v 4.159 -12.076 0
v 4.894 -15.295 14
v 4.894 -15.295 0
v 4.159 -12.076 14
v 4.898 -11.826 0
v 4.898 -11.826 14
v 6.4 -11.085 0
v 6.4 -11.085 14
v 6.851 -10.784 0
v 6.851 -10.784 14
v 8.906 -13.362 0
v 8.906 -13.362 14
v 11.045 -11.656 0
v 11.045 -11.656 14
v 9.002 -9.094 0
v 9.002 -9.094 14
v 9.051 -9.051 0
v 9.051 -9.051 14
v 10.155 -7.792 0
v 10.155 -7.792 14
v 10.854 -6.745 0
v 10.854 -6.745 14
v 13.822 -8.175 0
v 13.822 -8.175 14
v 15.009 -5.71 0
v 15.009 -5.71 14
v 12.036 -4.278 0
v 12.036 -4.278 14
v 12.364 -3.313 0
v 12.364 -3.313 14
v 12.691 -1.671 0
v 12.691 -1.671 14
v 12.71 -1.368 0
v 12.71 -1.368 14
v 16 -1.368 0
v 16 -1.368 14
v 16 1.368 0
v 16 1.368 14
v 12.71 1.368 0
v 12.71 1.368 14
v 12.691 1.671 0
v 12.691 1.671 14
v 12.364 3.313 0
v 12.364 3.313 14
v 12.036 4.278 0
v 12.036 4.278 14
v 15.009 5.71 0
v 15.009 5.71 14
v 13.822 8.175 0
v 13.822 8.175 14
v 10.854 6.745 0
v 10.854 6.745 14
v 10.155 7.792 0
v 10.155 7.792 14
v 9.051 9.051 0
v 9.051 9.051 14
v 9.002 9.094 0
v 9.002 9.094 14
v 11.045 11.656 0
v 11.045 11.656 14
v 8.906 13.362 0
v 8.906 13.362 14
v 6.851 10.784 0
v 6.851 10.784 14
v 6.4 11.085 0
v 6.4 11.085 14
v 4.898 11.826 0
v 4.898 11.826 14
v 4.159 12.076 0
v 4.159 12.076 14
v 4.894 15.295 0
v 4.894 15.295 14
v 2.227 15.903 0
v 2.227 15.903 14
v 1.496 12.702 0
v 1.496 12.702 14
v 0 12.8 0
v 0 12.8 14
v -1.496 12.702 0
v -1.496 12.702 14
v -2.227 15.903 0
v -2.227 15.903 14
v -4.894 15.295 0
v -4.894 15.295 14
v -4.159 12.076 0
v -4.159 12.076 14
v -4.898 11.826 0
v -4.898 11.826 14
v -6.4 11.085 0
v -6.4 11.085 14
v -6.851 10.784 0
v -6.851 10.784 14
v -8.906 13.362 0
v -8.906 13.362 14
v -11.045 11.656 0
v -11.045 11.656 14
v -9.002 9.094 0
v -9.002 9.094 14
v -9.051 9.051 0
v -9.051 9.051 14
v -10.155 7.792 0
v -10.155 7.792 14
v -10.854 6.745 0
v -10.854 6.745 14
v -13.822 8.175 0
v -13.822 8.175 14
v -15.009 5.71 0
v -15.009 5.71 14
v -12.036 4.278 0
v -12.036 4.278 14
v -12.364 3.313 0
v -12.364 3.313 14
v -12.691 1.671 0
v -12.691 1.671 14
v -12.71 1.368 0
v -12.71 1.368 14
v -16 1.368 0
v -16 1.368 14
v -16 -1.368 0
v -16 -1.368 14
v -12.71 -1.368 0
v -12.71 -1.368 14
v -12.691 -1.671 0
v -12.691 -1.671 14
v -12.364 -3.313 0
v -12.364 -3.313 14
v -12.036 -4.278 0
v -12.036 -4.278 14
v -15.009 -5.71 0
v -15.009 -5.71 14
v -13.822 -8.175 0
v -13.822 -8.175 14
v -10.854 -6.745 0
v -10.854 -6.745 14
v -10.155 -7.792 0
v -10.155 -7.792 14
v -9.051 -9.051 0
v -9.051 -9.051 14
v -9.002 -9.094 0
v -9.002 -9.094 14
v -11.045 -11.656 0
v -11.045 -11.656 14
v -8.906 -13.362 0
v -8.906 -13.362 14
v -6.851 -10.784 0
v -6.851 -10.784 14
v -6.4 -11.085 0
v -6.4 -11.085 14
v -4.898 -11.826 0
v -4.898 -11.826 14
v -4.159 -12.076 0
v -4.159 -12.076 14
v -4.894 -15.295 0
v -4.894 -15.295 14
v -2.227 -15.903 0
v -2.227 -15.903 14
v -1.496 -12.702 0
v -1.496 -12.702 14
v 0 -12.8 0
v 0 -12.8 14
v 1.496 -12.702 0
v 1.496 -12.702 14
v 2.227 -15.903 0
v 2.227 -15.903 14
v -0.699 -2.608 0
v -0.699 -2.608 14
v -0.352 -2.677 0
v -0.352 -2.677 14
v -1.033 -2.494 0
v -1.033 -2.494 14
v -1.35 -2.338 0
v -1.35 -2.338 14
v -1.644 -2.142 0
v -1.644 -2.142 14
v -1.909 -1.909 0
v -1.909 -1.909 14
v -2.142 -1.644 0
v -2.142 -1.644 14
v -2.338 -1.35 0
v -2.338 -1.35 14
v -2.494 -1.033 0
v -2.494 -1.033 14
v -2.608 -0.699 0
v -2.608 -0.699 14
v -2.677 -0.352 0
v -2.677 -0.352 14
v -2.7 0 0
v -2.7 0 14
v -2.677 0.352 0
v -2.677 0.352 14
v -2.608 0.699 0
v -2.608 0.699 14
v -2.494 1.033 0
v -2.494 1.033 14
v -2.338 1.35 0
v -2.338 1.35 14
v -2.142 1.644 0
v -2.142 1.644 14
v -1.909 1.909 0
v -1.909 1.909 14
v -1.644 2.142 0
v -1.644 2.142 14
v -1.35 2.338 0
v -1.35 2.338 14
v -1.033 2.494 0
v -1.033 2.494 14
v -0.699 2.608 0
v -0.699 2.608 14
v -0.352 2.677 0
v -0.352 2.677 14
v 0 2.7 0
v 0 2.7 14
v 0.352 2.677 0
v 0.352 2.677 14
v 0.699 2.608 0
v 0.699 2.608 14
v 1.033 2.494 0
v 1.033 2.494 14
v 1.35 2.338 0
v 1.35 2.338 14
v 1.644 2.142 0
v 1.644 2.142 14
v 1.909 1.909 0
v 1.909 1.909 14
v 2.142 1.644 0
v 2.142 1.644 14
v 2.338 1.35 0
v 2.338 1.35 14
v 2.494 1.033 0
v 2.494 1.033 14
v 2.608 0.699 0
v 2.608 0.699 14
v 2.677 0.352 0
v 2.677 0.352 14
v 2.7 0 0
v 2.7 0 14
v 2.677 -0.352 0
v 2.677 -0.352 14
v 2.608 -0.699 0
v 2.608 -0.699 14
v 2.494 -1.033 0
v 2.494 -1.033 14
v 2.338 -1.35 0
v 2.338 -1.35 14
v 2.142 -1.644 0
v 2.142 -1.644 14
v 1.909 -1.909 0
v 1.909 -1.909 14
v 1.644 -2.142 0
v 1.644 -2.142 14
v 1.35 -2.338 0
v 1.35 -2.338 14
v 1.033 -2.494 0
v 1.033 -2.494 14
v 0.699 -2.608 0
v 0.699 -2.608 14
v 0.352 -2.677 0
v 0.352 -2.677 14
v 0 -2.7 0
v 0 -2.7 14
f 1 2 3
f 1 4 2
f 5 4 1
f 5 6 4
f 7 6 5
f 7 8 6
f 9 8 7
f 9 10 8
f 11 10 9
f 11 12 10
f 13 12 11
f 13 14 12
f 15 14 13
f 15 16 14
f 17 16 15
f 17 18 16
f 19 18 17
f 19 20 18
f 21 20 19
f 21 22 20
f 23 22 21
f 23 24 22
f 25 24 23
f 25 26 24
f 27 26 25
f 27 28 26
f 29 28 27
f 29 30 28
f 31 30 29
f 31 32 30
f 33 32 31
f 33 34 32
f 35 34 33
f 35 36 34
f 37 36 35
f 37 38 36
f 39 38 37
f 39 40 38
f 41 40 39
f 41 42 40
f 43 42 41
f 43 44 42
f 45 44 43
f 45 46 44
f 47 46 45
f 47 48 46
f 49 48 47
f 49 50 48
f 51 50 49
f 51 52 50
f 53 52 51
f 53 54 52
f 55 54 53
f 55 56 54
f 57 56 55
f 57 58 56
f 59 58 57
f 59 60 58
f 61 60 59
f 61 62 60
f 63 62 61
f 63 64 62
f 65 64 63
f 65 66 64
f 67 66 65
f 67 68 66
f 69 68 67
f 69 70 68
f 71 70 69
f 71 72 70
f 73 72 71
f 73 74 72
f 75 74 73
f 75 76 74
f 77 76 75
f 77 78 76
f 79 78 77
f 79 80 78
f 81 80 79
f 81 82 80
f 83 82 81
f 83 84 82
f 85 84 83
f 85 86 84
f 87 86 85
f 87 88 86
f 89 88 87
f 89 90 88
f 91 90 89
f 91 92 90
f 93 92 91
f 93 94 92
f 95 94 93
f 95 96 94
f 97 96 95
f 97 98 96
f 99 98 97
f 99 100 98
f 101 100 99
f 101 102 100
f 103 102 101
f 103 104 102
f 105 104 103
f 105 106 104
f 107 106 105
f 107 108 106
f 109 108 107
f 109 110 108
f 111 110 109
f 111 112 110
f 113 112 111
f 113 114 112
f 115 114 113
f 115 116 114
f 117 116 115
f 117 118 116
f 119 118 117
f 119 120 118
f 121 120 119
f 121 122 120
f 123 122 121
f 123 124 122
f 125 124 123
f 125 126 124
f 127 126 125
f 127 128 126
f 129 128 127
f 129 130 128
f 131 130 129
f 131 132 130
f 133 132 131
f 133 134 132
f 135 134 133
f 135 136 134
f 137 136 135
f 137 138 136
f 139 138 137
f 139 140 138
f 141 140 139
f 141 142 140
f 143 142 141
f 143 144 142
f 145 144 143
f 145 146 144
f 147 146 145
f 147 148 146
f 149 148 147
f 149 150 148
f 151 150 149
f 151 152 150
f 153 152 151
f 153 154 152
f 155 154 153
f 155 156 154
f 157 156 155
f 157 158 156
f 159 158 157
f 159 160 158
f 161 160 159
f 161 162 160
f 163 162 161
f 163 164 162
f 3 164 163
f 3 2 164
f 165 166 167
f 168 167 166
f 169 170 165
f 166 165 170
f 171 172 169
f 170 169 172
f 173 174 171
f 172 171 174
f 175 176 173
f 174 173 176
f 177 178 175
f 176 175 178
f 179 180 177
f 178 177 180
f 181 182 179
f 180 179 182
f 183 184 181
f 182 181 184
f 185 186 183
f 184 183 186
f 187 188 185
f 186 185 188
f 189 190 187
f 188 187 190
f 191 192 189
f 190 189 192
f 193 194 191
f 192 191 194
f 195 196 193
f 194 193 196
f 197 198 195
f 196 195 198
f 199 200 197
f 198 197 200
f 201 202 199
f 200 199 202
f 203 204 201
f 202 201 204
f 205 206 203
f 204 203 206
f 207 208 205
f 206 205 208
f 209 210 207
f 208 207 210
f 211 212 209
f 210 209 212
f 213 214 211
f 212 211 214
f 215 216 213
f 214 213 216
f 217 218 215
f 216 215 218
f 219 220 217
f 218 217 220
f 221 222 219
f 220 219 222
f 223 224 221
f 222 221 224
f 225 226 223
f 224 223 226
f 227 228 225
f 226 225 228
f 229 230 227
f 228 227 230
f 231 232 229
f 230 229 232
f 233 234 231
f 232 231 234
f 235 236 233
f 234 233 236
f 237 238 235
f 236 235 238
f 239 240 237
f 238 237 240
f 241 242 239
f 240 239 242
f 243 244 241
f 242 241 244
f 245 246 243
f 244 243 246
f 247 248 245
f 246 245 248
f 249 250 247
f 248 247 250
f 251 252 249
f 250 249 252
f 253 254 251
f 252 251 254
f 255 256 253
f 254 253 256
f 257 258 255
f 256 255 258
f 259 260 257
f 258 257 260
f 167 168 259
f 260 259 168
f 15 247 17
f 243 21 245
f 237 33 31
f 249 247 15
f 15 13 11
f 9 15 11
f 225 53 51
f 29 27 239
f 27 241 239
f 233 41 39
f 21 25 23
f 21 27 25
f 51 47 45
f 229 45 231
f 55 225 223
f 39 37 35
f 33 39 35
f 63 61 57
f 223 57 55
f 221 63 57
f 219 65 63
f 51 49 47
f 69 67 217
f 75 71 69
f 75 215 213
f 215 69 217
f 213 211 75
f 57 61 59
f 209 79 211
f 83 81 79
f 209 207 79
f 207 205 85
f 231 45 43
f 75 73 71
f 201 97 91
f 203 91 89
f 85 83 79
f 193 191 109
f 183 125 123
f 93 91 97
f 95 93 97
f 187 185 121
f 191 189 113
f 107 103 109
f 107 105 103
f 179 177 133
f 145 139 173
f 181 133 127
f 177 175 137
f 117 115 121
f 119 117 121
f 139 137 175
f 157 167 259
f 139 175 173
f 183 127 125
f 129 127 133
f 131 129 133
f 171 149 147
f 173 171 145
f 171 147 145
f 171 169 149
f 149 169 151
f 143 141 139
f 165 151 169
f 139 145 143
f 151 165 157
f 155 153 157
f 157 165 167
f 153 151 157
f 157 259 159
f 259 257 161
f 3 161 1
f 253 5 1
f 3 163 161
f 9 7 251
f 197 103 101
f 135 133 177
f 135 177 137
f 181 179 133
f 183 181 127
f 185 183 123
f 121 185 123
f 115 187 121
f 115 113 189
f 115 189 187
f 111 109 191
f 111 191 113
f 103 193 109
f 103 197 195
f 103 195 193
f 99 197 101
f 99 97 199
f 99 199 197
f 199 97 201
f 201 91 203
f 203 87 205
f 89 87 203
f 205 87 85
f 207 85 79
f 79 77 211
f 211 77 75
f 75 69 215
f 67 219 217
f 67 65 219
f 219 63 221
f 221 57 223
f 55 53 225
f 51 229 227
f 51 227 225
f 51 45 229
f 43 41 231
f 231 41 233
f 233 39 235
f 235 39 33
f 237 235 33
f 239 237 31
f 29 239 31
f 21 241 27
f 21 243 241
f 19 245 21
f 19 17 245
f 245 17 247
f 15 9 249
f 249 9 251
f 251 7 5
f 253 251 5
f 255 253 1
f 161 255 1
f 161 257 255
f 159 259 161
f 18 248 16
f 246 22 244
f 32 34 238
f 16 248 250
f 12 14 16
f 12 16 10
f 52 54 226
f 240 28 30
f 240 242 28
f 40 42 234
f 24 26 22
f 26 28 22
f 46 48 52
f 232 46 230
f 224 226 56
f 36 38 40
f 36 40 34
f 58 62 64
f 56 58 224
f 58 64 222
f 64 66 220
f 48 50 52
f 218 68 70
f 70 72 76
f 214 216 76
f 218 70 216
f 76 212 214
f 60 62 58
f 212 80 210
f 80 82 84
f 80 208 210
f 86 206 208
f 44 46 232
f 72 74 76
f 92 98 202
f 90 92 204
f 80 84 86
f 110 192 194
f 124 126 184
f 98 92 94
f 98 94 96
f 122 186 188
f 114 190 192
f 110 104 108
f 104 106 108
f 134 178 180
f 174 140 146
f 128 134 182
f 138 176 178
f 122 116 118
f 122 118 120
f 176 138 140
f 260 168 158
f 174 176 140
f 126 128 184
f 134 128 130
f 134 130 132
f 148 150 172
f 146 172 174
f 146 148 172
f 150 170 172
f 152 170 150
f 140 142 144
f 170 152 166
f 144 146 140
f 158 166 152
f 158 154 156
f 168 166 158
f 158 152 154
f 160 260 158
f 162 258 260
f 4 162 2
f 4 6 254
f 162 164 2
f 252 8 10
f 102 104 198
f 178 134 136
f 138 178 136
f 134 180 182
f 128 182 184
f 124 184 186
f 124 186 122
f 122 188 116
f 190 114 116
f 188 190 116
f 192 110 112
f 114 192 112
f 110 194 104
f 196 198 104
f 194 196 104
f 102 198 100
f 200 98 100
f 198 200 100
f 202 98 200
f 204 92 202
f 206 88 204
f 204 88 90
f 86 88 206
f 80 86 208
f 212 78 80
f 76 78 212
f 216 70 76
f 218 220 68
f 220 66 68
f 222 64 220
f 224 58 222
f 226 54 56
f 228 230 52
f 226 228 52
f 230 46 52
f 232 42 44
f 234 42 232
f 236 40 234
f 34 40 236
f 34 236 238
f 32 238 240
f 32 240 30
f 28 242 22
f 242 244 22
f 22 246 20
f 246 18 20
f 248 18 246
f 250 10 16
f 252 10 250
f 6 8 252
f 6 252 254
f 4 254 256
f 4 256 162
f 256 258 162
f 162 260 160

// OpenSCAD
// ============================================================================
// Get Me An Alt — Parametric OpenSCAD Module
// Part: PRT-09 — Compliant Geared Parallel Gripper Jaws (×2) (gripper-jaw)
// Function: Grasps objects symmetrically when driven by J6 servo.
// Target Bounding Box (mm): [32, 32, 14]
// Print Material: PLA+ | Min Wall: >= 1.6mm | Tolerance: 0.2mm
// ============================================================================
$fn = 48;
part_width = 32;
part_depth = 32;
part_height = 14;
wall_thickness = 2.4;
floor_thickness = 2.4;
corner_radius = 4;
tolerance = 0.2;
m3_clearance_d = 3.4; // M3 screw clearance hole (3.0mm + 2*0.2mm)

module rounded_rect_prism(w, d, h, r) {
  cr = max(0.5, min(r, min(w, d) / 2 - 0.1));
  linear_extrude(height = h)
    offset(r = cr)
      offset(r = -cr)
        square([w, d], center = true);
}

module part_gripper_jaw() {
  teeth = 14;
  outer_r = 16;
  root_r = 12.8;
  tooth_w = (2 * 3.14159 * root_r) / (teeth * 2.1);
  linear_extrude(height = part_height)
    difference() {
      union() {
        circle(r = root_r);
        for (i = [0 : teeth - 1]) {
          rotate([0, 0, i * 360 / teeth])
            translate([root_r - 0.5, -tooth_w / 2])
              square([outer_r - root_r + 0.5, tooth_w]);
        }
      }
      circle(r = 2.5 + tolerance);
    }
}

part_gripper_jaw();
